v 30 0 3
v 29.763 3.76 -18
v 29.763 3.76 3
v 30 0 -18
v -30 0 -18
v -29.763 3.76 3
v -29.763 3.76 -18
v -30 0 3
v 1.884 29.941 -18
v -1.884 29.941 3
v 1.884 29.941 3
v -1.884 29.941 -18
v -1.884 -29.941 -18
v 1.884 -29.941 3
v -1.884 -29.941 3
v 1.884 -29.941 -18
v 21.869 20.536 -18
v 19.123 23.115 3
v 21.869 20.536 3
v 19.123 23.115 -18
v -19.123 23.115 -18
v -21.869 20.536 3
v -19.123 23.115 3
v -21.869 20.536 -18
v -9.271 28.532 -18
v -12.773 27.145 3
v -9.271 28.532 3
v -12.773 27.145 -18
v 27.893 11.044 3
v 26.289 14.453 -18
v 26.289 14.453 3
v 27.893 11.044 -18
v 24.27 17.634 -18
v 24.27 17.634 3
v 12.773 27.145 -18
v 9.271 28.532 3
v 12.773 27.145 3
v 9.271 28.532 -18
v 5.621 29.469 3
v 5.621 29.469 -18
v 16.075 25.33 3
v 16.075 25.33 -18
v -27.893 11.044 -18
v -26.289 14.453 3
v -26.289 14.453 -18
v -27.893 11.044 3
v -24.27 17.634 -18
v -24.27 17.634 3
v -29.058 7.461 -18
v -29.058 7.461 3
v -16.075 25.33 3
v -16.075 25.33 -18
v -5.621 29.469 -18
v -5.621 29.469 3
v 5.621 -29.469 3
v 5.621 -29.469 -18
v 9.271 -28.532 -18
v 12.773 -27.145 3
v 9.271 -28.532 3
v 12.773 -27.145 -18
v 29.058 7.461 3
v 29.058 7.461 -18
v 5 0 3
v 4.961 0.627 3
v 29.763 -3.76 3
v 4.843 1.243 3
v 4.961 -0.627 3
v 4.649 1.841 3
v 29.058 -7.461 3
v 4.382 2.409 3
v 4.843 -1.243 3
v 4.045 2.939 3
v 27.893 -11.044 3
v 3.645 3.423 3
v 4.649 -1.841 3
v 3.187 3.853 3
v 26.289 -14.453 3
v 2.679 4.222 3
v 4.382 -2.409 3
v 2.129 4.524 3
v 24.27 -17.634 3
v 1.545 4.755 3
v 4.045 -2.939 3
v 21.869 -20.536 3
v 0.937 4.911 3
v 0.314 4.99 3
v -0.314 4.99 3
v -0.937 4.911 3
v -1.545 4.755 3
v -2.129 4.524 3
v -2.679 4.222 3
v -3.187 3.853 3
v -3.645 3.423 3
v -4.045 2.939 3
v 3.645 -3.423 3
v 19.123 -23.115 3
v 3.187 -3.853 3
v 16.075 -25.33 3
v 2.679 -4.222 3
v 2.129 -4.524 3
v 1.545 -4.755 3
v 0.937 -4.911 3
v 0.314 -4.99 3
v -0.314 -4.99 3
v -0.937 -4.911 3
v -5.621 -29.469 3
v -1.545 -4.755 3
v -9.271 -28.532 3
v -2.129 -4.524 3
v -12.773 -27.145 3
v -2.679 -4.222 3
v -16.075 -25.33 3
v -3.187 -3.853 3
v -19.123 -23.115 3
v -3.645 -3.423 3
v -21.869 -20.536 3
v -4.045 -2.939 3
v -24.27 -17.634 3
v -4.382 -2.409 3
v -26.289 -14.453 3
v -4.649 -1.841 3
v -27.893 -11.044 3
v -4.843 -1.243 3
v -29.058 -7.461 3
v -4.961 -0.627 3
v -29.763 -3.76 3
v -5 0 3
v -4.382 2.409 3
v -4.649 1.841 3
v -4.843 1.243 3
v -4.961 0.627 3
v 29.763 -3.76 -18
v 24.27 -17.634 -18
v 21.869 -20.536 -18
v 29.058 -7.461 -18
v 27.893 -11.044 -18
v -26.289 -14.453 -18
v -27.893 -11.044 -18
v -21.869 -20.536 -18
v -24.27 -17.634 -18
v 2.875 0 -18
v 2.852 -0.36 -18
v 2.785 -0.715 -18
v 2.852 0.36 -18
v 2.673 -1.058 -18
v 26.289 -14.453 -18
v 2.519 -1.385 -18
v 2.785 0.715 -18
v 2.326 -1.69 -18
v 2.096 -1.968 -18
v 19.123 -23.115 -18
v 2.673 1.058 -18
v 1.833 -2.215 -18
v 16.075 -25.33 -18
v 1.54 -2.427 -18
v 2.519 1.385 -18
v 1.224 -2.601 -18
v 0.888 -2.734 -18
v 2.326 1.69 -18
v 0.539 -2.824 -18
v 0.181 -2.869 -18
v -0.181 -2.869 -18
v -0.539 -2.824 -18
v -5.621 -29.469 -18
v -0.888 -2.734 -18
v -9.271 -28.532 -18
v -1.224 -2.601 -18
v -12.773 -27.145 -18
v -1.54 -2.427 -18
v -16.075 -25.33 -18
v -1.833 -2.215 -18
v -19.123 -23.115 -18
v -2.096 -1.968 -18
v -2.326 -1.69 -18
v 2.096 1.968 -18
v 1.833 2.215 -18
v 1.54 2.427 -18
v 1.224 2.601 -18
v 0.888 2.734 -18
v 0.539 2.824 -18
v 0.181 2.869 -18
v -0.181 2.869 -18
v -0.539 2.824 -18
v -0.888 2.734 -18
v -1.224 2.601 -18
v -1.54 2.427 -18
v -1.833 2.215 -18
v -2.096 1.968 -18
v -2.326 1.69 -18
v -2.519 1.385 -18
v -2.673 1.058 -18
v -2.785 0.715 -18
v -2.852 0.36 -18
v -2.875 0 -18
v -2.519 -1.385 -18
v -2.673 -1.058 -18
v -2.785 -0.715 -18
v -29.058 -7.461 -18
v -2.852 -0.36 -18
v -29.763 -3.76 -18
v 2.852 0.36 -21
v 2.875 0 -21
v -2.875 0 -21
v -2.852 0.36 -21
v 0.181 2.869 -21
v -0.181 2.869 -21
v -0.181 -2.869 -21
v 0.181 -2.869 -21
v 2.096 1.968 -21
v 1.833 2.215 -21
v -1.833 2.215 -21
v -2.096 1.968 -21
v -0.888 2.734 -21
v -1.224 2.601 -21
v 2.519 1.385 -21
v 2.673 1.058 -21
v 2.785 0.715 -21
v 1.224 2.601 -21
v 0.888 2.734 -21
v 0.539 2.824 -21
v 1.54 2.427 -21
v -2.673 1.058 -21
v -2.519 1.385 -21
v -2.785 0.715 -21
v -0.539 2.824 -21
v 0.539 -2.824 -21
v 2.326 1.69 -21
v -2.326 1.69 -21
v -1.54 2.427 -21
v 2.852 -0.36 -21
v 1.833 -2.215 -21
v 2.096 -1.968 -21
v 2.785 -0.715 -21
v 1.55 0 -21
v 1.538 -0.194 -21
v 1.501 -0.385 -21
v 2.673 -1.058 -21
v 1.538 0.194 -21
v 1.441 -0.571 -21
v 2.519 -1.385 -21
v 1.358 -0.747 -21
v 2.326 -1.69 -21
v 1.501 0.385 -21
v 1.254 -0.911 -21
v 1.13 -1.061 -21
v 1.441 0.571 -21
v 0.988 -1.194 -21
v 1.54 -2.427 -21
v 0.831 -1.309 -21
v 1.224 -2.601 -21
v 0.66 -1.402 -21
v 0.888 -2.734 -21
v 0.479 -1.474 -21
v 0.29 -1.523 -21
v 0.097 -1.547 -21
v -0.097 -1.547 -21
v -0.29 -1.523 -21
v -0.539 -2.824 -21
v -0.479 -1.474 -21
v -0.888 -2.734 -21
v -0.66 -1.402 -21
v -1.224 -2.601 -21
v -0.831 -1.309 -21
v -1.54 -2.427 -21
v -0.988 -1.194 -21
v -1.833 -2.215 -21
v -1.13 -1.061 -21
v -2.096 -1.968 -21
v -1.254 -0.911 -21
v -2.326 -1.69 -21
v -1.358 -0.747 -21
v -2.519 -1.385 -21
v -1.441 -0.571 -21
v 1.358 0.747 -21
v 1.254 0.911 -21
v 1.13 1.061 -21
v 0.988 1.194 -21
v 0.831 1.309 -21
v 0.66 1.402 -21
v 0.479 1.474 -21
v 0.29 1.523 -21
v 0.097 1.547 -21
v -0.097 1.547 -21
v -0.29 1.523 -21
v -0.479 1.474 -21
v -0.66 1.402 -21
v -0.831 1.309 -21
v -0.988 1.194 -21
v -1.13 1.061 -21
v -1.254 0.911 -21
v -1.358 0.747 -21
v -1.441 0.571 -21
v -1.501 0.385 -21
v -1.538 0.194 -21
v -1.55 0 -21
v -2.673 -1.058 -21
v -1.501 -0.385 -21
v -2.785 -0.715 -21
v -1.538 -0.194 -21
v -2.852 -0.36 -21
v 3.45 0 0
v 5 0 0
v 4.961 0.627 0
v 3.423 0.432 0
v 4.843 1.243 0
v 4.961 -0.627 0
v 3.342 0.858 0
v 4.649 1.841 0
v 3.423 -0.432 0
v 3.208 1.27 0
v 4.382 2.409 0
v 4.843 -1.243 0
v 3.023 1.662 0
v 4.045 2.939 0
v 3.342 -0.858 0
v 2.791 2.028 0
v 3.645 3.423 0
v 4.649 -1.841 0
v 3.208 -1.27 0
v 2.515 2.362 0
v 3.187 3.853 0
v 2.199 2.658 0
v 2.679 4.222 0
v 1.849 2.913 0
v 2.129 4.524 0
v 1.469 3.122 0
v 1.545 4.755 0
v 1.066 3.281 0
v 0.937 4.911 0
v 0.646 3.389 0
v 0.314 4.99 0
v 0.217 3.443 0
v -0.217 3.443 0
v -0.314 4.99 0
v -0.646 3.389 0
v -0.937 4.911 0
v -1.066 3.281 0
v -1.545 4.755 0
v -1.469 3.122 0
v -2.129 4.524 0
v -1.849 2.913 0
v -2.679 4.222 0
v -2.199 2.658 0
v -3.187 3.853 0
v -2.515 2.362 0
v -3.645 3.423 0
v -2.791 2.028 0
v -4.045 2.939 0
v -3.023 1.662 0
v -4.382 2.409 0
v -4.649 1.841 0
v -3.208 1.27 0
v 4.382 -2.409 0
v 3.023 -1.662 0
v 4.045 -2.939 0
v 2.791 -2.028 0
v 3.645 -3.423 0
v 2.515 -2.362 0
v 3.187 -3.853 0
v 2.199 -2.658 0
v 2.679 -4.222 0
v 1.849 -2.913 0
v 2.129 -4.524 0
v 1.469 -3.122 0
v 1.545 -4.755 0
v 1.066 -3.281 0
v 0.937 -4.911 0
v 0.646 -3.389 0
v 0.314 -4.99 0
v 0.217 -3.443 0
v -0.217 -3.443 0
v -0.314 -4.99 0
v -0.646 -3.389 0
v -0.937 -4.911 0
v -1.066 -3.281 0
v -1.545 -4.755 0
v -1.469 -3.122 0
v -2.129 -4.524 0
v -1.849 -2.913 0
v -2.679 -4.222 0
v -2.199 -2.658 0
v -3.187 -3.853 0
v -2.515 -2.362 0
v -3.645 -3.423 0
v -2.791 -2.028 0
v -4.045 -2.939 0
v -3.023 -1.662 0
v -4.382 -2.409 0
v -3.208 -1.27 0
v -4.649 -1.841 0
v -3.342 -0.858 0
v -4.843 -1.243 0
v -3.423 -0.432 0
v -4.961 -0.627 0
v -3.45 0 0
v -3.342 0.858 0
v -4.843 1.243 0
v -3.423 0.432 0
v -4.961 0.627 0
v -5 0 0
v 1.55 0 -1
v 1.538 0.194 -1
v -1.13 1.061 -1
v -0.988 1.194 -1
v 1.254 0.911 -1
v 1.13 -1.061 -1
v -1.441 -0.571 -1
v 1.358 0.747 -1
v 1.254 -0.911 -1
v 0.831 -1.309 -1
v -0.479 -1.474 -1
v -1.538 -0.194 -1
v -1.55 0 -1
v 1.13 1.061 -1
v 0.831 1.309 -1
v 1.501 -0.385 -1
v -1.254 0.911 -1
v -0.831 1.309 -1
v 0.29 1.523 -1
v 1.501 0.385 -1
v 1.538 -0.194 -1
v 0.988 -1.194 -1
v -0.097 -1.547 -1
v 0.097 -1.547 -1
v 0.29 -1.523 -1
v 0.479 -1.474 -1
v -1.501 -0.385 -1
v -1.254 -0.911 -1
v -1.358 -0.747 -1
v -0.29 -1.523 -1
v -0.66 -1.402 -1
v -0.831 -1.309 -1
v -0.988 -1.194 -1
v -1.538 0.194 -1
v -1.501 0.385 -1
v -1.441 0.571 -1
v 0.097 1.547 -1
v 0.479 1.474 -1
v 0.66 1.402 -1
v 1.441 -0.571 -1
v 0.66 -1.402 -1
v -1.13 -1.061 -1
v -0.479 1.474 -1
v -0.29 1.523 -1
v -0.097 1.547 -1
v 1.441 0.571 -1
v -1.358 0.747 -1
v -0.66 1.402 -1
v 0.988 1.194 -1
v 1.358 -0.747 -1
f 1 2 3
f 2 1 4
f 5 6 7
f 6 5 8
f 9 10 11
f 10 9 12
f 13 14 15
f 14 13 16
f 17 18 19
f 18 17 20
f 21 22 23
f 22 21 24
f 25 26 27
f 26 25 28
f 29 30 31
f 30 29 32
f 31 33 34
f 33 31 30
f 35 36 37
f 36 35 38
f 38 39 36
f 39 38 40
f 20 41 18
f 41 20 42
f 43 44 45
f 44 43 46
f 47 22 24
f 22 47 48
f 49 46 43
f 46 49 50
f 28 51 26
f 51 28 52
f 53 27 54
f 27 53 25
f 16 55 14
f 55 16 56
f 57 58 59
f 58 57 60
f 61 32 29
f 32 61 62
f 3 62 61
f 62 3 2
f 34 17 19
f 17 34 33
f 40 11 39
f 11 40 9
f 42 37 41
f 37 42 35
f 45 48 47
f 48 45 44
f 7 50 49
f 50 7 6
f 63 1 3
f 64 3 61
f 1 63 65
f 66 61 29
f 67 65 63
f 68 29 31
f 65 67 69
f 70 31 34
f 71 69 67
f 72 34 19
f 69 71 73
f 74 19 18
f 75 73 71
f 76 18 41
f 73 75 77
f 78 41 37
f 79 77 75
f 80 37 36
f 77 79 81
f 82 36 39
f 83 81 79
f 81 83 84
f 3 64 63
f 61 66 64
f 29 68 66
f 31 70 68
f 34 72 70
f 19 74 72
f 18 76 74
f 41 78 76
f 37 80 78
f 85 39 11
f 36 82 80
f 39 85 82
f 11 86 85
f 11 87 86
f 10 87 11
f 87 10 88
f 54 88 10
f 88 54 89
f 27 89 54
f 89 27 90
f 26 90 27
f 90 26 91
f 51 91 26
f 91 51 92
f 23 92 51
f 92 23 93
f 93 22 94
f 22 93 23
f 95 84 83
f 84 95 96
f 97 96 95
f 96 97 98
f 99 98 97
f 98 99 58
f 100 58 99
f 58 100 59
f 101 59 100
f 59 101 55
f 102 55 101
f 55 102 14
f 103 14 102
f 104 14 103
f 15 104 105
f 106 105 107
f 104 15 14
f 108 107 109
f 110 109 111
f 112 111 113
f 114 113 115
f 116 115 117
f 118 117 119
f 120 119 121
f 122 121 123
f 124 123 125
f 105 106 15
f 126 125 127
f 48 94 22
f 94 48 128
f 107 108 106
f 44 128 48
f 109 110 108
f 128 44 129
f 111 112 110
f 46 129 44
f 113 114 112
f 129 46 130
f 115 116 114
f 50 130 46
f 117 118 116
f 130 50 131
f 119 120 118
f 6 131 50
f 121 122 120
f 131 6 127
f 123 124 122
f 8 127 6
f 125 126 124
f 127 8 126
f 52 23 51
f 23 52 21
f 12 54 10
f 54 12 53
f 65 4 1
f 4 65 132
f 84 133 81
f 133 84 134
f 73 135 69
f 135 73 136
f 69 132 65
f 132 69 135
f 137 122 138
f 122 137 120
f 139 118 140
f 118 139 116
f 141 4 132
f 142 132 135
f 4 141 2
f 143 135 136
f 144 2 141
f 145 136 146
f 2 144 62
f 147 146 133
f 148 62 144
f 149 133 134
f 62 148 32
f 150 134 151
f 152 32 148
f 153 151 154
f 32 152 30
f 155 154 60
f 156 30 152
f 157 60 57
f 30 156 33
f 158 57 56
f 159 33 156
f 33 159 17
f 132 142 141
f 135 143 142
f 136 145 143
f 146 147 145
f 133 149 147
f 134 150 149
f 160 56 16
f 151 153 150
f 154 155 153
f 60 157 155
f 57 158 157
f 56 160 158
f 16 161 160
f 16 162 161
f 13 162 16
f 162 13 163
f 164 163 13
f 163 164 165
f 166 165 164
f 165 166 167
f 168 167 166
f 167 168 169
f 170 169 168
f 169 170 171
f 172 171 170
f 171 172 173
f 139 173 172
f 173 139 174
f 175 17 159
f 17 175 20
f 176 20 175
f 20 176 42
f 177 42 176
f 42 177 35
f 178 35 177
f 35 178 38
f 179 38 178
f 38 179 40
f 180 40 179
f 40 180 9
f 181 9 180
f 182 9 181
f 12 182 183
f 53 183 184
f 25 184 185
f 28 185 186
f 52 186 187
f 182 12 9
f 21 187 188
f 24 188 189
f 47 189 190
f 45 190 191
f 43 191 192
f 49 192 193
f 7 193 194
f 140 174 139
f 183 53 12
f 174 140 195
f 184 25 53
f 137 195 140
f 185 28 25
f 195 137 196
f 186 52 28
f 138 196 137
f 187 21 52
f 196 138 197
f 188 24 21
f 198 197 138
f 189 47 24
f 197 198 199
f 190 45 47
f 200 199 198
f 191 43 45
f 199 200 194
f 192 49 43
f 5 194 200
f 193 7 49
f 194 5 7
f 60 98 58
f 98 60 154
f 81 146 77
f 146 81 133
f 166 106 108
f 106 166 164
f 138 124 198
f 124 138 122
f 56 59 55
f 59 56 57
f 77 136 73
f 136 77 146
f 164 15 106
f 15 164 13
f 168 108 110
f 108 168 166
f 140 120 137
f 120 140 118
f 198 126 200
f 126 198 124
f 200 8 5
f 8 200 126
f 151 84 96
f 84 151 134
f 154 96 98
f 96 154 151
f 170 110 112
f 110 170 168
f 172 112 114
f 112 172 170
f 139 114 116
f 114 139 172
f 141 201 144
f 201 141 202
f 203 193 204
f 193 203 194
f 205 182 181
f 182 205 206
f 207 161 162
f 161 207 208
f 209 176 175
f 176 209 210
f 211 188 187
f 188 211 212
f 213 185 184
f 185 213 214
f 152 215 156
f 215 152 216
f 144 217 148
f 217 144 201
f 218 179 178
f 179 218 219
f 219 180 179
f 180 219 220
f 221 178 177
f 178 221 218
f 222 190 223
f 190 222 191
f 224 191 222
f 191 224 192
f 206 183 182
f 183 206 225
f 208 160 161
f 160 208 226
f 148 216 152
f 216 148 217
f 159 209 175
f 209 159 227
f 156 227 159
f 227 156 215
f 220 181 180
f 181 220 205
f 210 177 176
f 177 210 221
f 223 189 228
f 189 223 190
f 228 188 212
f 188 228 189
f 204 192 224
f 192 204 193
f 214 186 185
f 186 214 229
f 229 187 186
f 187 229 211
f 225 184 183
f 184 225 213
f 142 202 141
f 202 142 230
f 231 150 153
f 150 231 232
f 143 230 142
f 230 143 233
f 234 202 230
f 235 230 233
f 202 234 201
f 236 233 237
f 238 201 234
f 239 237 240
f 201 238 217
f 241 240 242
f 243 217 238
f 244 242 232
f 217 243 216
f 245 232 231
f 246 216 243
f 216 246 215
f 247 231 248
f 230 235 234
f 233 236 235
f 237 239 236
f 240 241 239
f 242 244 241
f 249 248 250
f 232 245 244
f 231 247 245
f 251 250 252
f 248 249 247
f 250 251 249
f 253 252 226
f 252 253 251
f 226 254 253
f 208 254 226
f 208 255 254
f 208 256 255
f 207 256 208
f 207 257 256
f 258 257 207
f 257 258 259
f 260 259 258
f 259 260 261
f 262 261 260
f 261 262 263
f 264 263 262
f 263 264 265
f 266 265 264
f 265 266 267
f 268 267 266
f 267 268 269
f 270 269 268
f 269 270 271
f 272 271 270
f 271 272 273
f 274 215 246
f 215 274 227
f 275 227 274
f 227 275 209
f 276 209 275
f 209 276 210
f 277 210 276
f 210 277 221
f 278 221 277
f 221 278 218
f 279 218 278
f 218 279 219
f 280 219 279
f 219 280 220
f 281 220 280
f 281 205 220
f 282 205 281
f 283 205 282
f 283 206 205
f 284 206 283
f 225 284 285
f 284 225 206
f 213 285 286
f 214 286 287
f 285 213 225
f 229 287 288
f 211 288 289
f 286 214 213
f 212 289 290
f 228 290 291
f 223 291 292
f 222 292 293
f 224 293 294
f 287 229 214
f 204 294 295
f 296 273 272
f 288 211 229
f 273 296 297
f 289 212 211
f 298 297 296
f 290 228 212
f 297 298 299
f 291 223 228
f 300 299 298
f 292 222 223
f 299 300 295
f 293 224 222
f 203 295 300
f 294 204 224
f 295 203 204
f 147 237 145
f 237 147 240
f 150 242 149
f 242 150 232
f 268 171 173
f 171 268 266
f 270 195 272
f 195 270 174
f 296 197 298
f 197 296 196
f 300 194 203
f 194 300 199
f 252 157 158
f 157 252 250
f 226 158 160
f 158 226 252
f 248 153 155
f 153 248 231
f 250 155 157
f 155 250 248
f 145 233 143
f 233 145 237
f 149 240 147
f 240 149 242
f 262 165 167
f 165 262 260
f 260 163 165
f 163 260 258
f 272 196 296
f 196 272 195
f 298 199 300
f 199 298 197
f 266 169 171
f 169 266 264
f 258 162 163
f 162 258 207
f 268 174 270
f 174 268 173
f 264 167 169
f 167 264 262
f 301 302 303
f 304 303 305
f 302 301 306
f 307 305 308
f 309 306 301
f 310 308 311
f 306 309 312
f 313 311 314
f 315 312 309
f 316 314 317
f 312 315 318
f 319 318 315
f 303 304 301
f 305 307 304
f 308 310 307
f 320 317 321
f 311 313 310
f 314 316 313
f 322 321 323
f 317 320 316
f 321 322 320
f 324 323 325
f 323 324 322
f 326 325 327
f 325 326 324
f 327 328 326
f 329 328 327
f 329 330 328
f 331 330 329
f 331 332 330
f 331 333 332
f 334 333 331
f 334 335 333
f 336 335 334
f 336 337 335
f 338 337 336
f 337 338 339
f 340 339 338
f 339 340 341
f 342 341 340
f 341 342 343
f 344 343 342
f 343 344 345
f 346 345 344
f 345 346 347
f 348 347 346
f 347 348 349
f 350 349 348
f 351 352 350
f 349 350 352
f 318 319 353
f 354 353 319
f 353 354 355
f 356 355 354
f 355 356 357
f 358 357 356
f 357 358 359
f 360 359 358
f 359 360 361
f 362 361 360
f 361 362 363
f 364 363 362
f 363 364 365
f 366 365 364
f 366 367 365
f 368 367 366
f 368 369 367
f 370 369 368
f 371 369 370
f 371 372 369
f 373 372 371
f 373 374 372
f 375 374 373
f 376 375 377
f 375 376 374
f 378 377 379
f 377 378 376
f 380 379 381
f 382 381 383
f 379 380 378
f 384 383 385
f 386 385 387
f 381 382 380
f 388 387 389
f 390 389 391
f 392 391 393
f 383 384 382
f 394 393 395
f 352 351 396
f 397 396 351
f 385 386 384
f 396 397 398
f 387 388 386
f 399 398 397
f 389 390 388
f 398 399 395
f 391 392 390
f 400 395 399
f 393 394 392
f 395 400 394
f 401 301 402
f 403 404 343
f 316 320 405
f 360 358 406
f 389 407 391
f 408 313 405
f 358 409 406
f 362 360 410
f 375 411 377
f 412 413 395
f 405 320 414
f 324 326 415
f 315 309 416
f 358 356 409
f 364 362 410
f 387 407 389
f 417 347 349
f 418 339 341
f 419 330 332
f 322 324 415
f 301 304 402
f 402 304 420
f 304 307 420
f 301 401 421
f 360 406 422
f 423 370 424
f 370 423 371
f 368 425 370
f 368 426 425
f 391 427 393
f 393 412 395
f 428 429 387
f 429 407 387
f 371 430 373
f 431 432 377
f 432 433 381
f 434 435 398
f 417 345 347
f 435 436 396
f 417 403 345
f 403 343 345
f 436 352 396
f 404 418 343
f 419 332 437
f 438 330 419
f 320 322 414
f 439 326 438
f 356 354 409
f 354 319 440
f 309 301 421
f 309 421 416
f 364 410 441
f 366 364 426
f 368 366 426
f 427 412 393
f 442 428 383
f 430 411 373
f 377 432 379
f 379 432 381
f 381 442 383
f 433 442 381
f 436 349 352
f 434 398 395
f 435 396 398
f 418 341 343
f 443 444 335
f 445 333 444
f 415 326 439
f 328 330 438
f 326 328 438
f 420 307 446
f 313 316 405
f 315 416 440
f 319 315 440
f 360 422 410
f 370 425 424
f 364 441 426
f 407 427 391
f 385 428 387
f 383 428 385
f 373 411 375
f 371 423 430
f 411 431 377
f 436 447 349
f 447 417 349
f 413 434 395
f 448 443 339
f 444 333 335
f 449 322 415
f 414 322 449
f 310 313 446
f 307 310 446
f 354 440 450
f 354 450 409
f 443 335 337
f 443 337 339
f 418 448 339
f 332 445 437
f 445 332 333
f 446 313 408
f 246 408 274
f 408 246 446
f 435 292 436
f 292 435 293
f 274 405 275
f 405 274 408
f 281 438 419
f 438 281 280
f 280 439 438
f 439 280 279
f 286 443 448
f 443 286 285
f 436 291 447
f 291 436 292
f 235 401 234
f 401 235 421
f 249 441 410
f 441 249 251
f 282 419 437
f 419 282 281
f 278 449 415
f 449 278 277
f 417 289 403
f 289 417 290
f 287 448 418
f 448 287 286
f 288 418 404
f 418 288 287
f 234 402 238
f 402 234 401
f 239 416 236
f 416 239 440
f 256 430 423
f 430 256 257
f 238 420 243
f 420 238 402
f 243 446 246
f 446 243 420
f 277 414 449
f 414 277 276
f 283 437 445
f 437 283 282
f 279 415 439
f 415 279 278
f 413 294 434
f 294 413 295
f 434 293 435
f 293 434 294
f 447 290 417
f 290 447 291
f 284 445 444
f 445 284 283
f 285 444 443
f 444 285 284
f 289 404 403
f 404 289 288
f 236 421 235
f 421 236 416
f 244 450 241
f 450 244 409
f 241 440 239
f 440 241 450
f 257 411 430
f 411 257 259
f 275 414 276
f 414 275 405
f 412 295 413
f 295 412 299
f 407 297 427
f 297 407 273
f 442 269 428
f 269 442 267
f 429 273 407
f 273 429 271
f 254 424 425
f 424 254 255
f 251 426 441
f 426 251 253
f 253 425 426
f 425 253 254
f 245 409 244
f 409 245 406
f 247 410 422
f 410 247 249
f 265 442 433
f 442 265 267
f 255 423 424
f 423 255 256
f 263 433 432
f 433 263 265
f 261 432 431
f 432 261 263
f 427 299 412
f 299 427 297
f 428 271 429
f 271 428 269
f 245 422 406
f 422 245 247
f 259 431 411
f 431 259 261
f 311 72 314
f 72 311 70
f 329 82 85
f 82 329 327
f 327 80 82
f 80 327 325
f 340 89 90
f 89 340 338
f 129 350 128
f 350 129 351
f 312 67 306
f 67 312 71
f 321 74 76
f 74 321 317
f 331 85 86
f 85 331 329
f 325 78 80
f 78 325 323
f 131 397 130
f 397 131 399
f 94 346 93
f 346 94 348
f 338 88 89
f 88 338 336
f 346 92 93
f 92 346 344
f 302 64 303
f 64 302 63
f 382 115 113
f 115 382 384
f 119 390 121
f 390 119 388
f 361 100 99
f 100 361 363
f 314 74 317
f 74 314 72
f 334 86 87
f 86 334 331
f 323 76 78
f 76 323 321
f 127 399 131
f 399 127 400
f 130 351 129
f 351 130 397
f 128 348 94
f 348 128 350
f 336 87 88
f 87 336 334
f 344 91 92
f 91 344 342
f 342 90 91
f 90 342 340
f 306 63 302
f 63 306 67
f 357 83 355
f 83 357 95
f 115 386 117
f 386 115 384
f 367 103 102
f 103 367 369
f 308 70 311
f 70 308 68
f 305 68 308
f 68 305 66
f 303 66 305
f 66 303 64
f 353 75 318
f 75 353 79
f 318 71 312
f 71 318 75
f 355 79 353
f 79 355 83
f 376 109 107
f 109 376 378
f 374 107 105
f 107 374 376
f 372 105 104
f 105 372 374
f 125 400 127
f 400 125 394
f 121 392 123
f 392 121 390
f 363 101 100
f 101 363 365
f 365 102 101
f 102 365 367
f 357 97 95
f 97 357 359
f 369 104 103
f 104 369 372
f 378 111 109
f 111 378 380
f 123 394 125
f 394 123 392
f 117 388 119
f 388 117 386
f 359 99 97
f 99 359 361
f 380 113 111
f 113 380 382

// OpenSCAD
$fn = 50;


difference() {
	union() {
		translate(v = [0, 0, -18.0000000000]) {
			cylinder(h = 21, r = 30.0000000000);
		}
		#translate(v = [0, 0, -21.0000000000]) {
			cylinder(h = 21, r = 2.8750000000);
		}
	}
	union() {
		translate(v = [0, 0, 0]) {
			rotate(a = [0, 0, 0]) {
				difference() {
					union() {
						translate(v = [0, 0, -21.0000000000]) {
							cylinder(h = 21, r = 1.2500000000);
						}
						translate(v = [0, 0, -1.0000000000]) {
							cylinder(h = 1.0000000000, r1 = 1.5500000000, r2 = 3.4500000000);
						}
						translate(v = [0, 0, -21.0000000000]) {
							cylinder(h = 21, r = 1.5500000000);
						}
						translate(v = [0, 0, -21.0000000000]) {
							cylinder(h = 21, r = 1.2500000000);
						}
					}
					union();
				}
			}
		}
		#cylinder(h = 3, r = 5.0000000000);
	}
}
